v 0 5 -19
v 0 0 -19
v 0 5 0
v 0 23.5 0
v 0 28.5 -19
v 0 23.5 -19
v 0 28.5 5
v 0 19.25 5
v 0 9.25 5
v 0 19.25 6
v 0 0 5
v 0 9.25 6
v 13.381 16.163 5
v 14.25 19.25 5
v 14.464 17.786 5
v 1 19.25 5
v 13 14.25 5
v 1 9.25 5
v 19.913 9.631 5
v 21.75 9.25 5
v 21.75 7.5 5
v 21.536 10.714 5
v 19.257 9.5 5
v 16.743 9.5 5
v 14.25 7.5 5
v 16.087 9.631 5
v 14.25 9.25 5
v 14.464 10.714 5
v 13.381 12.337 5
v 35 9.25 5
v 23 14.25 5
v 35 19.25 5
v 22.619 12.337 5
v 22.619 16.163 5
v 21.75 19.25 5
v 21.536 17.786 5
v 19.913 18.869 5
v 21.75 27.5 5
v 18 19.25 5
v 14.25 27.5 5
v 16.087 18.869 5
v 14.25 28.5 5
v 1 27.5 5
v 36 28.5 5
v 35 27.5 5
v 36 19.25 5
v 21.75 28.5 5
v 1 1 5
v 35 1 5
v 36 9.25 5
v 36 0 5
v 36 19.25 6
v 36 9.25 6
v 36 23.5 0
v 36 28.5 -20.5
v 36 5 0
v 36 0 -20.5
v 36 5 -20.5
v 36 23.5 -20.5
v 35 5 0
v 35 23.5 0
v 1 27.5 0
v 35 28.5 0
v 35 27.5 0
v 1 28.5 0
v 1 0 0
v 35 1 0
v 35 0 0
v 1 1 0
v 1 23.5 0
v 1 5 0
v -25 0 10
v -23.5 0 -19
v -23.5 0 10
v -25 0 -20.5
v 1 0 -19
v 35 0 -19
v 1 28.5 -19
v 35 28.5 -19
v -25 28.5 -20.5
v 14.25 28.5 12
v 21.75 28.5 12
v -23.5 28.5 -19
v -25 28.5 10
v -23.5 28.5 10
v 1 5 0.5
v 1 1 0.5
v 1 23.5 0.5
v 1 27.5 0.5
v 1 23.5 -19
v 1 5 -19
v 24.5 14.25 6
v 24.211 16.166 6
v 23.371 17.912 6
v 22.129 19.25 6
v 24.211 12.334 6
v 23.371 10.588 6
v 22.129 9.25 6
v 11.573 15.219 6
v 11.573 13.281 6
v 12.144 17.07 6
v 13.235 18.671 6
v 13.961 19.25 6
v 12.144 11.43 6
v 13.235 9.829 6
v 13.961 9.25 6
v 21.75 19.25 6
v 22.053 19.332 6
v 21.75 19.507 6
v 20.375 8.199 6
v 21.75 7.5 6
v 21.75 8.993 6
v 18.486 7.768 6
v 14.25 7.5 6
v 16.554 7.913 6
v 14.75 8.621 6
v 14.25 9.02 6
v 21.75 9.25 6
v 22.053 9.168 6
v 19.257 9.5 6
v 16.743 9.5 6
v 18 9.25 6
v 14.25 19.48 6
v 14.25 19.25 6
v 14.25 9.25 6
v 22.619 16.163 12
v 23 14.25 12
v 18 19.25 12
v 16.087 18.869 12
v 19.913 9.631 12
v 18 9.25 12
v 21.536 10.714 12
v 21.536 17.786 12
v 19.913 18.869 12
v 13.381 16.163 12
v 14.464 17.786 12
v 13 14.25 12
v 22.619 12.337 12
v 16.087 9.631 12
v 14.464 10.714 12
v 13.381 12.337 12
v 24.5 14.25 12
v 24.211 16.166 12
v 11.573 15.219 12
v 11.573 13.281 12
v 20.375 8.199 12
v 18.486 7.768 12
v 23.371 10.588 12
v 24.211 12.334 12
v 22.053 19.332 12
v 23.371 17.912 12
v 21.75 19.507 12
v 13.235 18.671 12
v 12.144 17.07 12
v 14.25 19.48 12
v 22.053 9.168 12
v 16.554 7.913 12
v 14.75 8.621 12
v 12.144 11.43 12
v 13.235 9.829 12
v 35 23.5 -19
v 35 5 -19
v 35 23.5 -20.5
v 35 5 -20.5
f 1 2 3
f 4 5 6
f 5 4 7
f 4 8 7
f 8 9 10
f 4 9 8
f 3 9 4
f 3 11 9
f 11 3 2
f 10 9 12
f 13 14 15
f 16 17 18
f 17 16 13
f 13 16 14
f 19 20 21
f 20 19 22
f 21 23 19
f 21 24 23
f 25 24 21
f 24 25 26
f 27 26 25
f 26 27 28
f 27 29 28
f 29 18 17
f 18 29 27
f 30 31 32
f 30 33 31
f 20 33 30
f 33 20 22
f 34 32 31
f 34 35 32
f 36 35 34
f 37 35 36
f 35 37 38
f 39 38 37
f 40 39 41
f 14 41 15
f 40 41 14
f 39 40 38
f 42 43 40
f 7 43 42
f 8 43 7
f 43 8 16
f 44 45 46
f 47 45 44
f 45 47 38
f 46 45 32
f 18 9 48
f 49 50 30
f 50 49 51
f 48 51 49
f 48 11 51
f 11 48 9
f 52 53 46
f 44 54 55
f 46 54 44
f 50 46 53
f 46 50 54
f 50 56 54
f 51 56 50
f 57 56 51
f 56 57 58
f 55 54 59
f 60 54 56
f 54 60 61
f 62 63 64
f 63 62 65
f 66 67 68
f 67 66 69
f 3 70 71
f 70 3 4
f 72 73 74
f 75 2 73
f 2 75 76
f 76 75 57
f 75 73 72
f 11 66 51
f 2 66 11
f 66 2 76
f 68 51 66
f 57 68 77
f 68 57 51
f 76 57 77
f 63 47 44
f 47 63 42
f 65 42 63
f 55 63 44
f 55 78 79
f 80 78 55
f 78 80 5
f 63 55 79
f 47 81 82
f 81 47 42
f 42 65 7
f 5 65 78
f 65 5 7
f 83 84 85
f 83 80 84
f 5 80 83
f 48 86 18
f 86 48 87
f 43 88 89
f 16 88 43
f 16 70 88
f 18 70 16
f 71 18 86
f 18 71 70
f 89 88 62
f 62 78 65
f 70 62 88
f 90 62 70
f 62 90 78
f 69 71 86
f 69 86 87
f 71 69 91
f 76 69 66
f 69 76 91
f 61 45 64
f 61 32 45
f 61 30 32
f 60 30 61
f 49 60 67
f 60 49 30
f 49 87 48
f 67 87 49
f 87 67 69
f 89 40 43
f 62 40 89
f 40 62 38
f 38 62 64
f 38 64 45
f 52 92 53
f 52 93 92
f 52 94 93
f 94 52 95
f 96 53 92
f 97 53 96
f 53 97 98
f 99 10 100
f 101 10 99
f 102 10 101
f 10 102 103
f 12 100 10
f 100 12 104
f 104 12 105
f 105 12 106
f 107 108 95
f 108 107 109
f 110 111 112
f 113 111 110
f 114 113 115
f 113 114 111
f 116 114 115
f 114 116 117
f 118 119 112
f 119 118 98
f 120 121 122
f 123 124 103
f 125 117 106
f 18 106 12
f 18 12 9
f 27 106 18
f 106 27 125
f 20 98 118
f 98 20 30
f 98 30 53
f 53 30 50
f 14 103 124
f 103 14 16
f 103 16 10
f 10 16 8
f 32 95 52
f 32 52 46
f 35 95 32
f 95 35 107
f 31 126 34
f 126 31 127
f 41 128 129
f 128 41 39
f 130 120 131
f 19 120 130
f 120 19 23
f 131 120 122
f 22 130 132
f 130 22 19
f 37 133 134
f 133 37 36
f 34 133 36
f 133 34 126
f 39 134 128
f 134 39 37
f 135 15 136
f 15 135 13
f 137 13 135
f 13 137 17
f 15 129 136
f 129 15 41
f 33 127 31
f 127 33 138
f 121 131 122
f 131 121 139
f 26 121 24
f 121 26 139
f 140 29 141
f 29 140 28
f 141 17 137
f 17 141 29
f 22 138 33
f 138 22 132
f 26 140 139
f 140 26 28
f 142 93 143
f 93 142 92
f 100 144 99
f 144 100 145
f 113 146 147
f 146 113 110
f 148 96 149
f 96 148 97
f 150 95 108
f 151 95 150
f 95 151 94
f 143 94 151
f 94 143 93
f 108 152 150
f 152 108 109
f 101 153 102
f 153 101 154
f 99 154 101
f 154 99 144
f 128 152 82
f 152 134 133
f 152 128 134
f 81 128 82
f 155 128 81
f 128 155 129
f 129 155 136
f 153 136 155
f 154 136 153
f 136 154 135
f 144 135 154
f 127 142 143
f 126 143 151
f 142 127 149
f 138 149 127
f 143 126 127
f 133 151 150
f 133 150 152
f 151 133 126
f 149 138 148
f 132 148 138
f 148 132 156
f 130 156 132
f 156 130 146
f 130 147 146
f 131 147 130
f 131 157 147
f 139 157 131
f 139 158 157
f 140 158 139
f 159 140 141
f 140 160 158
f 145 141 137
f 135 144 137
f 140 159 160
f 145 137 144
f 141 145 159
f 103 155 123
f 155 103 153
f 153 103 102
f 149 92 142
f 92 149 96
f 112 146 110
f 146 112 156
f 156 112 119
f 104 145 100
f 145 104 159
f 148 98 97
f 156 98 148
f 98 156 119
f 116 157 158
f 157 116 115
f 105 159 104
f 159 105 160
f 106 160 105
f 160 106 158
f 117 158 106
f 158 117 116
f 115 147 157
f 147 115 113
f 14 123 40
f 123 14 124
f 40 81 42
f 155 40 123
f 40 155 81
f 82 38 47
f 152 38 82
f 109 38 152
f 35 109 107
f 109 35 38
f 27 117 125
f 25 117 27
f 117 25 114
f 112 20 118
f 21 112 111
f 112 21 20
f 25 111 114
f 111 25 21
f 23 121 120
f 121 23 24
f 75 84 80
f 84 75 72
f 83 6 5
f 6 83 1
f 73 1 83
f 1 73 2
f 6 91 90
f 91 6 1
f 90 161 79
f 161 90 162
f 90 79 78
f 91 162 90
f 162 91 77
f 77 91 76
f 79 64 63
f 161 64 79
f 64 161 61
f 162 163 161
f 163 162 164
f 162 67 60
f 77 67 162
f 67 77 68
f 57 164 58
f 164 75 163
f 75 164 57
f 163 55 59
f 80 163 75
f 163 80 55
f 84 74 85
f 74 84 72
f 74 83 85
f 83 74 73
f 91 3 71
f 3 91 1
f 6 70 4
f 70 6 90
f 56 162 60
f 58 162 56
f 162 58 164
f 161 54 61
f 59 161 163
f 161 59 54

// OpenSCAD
/*cube([34,26.5,2.5]);

translate([-1,-1,-2])
{
cube([36,28.5,5]);
}*/

difference()
{
    cube([36,28.5,5]);
    
    translate([1,1,0])
    {
      cube([34,26.5,5]);
    }  
}

difference()
{

translate([0,9.25,5])
{
cube([36,10,1]);
}

translate([18,14.25,4])
{
    cylinder(10,5,5);
}

}

translate([14.25,19.25,5])
{
cube([7.5,9.25,7]);
}


translate([14.25,7.5,5])
{
cube([7.5,2,1]);
}

difference()
{

translate([18,14.25,6])
{
    cylinder(6,6.5,6.5);
}

translate([18,14.25,6])
{
    cylinder(10,5,5);
}

}

translate([-25,0,-20.5])
{
    cube([60,28.5,1.5]);
}

translate([-25,0,-20])
{
    cube([1.5,28.5,30]);
}

translate([0,0,-20])
{
    cube([1,5,20.5]);
}

translate([0,23.5,-20])
{
    cube([1,5,20.5]);
}

translate([35,0,-20.5])
{
    cube([1,5,20.5]);
}

translate([35,23.5,-20.5])
{
    cube([1,5,20.5]);
}
